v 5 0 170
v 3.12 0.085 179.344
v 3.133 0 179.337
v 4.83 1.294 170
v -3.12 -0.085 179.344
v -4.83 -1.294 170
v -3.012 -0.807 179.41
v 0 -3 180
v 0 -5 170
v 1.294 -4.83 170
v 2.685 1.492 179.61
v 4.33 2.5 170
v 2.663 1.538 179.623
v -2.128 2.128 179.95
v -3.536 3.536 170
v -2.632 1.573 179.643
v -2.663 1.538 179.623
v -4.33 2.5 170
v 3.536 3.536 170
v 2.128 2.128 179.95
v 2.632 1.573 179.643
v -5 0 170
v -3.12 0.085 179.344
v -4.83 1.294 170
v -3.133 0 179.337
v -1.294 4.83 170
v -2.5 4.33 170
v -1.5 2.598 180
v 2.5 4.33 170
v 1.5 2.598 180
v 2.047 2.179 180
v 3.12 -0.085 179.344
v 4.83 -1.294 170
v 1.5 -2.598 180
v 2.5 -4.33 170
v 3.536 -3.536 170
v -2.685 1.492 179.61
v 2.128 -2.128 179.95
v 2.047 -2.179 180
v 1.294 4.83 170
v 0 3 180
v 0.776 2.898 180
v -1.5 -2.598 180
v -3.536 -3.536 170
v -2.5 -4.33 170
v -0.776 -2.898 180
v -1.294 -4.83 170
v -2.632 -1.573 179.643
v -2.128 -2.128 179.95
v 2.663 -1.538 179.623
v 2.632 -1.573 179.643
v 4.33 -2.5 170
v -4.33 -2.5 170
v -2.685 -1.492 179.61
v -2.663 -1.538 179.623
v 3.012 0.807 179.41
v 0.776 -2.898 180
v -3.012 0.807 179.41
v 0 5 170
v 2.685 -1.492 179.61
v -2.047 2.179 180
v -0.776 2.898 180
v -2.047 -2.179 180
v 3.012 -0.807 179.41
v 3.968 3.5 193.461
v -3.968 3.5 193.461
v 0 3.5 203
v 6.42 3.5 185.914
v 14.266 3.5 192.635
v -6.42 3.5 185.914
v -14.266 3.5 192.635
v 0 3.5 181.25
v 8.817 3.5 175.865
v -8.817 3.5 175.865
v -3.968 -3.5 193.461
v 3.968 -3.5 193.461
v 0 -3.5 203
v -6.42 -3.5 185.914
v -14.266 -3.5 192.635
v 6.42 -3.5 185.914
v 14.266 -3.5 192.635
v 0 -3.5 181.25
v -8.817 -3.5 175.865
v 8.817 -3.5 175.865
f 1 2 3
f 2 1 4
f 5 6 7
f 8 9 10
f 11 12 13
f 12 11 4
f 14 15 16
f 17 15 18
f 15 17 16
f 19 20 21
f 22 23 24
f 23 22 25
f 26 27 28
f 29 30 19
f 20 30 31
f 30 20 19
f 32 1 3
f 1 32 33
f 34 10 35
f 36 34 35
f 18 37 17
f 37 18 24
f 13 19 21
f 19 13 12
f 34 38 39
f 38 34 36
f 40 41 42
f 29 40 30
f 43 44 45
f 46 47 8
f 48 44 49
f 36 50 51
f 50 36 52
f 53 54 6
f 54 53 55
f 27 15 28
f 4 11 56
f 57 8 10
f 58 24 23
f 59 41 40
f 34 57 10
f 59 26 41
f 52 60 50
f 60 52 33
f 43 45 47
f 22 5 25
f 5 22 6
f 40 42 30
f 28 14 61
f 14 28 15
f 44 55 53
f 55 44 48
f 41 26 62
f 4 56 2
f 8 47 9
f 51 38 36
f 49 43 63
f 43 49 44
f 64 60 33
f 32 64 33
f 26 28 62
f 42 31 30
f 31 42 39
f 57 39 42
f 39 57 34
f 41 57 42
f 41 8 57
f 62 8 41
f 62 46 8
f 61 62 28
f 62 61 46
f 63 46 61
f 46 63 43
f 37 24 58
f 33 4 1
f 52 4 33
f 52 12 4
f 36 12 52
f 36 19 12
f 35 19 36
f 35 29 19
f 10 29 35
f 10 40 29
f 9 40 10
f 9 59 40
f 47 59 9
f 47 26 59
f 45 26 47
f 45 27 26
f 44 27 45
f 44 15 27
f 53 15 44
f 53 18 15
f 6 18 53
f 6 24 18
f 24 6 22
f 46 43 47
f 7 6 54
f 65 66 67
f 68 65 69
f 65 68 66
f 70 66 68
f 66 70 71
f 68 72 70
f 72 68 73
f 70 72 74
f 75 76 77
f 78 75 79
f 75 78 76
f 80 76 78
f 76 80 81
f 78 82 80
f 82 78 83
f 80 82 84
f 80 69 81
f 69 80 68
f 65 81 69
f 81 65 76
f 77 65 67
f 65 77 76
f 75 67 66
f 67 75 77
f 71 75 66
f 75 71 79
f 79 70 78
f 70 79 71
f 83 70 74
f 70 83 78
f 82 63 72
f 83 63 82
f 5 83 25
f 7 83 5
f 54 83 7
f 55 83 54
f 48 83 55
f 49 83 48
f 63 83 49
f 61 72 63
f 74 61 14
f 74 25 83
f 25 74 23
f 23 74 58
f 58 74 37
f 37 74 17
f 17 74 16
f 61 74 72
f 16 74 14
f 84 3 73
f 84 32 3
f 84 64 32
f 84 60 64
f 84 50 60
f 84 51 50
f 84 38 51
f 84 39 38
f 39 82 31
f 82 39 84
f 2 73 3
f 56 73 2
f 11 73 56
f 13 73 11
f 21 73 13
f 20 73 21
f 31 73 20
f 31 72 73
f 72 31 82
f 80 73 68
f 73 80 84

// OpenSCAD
// file: comun.scad
// Impronta 3D — Farol árbol con estrellas caladas (diseño propio, 2 colores).
// Árbol hueco de 3 pisos con estrellitas caladas: adentro va una vela LED y la luz sale por las estrellas.
// Se imprime parado, sin soportes (paredes a 60°, estrellas chicas que puentean bien).
pisos = [[0, 78, 40, 72], [62, 62, 28, 66], [116, 46, 6, 58]]; // [z, radio abajo, radio arriba, alto]
pared = 2.2;
alto_total = 174;
$fn = 120;
module estrella(r) { polygon([for (i = [0:9]) let(rr = i % 2 == 0 ? r : r * 0.45, a = 90 + 36 * i) [rr * cos(a), rr * sin(a)]]); }
// main file
include <comun.scad>
translate([0, 0, alto_total - 4]) cylinder(r1 = 5, r2 = 3, h = 10, $fn = 24);
translate([0, 0, alto_total + 14]) rotate([90, 0, 0]) translate([0, 0, -3.5]) linear_extrude(7) estrella(15);
